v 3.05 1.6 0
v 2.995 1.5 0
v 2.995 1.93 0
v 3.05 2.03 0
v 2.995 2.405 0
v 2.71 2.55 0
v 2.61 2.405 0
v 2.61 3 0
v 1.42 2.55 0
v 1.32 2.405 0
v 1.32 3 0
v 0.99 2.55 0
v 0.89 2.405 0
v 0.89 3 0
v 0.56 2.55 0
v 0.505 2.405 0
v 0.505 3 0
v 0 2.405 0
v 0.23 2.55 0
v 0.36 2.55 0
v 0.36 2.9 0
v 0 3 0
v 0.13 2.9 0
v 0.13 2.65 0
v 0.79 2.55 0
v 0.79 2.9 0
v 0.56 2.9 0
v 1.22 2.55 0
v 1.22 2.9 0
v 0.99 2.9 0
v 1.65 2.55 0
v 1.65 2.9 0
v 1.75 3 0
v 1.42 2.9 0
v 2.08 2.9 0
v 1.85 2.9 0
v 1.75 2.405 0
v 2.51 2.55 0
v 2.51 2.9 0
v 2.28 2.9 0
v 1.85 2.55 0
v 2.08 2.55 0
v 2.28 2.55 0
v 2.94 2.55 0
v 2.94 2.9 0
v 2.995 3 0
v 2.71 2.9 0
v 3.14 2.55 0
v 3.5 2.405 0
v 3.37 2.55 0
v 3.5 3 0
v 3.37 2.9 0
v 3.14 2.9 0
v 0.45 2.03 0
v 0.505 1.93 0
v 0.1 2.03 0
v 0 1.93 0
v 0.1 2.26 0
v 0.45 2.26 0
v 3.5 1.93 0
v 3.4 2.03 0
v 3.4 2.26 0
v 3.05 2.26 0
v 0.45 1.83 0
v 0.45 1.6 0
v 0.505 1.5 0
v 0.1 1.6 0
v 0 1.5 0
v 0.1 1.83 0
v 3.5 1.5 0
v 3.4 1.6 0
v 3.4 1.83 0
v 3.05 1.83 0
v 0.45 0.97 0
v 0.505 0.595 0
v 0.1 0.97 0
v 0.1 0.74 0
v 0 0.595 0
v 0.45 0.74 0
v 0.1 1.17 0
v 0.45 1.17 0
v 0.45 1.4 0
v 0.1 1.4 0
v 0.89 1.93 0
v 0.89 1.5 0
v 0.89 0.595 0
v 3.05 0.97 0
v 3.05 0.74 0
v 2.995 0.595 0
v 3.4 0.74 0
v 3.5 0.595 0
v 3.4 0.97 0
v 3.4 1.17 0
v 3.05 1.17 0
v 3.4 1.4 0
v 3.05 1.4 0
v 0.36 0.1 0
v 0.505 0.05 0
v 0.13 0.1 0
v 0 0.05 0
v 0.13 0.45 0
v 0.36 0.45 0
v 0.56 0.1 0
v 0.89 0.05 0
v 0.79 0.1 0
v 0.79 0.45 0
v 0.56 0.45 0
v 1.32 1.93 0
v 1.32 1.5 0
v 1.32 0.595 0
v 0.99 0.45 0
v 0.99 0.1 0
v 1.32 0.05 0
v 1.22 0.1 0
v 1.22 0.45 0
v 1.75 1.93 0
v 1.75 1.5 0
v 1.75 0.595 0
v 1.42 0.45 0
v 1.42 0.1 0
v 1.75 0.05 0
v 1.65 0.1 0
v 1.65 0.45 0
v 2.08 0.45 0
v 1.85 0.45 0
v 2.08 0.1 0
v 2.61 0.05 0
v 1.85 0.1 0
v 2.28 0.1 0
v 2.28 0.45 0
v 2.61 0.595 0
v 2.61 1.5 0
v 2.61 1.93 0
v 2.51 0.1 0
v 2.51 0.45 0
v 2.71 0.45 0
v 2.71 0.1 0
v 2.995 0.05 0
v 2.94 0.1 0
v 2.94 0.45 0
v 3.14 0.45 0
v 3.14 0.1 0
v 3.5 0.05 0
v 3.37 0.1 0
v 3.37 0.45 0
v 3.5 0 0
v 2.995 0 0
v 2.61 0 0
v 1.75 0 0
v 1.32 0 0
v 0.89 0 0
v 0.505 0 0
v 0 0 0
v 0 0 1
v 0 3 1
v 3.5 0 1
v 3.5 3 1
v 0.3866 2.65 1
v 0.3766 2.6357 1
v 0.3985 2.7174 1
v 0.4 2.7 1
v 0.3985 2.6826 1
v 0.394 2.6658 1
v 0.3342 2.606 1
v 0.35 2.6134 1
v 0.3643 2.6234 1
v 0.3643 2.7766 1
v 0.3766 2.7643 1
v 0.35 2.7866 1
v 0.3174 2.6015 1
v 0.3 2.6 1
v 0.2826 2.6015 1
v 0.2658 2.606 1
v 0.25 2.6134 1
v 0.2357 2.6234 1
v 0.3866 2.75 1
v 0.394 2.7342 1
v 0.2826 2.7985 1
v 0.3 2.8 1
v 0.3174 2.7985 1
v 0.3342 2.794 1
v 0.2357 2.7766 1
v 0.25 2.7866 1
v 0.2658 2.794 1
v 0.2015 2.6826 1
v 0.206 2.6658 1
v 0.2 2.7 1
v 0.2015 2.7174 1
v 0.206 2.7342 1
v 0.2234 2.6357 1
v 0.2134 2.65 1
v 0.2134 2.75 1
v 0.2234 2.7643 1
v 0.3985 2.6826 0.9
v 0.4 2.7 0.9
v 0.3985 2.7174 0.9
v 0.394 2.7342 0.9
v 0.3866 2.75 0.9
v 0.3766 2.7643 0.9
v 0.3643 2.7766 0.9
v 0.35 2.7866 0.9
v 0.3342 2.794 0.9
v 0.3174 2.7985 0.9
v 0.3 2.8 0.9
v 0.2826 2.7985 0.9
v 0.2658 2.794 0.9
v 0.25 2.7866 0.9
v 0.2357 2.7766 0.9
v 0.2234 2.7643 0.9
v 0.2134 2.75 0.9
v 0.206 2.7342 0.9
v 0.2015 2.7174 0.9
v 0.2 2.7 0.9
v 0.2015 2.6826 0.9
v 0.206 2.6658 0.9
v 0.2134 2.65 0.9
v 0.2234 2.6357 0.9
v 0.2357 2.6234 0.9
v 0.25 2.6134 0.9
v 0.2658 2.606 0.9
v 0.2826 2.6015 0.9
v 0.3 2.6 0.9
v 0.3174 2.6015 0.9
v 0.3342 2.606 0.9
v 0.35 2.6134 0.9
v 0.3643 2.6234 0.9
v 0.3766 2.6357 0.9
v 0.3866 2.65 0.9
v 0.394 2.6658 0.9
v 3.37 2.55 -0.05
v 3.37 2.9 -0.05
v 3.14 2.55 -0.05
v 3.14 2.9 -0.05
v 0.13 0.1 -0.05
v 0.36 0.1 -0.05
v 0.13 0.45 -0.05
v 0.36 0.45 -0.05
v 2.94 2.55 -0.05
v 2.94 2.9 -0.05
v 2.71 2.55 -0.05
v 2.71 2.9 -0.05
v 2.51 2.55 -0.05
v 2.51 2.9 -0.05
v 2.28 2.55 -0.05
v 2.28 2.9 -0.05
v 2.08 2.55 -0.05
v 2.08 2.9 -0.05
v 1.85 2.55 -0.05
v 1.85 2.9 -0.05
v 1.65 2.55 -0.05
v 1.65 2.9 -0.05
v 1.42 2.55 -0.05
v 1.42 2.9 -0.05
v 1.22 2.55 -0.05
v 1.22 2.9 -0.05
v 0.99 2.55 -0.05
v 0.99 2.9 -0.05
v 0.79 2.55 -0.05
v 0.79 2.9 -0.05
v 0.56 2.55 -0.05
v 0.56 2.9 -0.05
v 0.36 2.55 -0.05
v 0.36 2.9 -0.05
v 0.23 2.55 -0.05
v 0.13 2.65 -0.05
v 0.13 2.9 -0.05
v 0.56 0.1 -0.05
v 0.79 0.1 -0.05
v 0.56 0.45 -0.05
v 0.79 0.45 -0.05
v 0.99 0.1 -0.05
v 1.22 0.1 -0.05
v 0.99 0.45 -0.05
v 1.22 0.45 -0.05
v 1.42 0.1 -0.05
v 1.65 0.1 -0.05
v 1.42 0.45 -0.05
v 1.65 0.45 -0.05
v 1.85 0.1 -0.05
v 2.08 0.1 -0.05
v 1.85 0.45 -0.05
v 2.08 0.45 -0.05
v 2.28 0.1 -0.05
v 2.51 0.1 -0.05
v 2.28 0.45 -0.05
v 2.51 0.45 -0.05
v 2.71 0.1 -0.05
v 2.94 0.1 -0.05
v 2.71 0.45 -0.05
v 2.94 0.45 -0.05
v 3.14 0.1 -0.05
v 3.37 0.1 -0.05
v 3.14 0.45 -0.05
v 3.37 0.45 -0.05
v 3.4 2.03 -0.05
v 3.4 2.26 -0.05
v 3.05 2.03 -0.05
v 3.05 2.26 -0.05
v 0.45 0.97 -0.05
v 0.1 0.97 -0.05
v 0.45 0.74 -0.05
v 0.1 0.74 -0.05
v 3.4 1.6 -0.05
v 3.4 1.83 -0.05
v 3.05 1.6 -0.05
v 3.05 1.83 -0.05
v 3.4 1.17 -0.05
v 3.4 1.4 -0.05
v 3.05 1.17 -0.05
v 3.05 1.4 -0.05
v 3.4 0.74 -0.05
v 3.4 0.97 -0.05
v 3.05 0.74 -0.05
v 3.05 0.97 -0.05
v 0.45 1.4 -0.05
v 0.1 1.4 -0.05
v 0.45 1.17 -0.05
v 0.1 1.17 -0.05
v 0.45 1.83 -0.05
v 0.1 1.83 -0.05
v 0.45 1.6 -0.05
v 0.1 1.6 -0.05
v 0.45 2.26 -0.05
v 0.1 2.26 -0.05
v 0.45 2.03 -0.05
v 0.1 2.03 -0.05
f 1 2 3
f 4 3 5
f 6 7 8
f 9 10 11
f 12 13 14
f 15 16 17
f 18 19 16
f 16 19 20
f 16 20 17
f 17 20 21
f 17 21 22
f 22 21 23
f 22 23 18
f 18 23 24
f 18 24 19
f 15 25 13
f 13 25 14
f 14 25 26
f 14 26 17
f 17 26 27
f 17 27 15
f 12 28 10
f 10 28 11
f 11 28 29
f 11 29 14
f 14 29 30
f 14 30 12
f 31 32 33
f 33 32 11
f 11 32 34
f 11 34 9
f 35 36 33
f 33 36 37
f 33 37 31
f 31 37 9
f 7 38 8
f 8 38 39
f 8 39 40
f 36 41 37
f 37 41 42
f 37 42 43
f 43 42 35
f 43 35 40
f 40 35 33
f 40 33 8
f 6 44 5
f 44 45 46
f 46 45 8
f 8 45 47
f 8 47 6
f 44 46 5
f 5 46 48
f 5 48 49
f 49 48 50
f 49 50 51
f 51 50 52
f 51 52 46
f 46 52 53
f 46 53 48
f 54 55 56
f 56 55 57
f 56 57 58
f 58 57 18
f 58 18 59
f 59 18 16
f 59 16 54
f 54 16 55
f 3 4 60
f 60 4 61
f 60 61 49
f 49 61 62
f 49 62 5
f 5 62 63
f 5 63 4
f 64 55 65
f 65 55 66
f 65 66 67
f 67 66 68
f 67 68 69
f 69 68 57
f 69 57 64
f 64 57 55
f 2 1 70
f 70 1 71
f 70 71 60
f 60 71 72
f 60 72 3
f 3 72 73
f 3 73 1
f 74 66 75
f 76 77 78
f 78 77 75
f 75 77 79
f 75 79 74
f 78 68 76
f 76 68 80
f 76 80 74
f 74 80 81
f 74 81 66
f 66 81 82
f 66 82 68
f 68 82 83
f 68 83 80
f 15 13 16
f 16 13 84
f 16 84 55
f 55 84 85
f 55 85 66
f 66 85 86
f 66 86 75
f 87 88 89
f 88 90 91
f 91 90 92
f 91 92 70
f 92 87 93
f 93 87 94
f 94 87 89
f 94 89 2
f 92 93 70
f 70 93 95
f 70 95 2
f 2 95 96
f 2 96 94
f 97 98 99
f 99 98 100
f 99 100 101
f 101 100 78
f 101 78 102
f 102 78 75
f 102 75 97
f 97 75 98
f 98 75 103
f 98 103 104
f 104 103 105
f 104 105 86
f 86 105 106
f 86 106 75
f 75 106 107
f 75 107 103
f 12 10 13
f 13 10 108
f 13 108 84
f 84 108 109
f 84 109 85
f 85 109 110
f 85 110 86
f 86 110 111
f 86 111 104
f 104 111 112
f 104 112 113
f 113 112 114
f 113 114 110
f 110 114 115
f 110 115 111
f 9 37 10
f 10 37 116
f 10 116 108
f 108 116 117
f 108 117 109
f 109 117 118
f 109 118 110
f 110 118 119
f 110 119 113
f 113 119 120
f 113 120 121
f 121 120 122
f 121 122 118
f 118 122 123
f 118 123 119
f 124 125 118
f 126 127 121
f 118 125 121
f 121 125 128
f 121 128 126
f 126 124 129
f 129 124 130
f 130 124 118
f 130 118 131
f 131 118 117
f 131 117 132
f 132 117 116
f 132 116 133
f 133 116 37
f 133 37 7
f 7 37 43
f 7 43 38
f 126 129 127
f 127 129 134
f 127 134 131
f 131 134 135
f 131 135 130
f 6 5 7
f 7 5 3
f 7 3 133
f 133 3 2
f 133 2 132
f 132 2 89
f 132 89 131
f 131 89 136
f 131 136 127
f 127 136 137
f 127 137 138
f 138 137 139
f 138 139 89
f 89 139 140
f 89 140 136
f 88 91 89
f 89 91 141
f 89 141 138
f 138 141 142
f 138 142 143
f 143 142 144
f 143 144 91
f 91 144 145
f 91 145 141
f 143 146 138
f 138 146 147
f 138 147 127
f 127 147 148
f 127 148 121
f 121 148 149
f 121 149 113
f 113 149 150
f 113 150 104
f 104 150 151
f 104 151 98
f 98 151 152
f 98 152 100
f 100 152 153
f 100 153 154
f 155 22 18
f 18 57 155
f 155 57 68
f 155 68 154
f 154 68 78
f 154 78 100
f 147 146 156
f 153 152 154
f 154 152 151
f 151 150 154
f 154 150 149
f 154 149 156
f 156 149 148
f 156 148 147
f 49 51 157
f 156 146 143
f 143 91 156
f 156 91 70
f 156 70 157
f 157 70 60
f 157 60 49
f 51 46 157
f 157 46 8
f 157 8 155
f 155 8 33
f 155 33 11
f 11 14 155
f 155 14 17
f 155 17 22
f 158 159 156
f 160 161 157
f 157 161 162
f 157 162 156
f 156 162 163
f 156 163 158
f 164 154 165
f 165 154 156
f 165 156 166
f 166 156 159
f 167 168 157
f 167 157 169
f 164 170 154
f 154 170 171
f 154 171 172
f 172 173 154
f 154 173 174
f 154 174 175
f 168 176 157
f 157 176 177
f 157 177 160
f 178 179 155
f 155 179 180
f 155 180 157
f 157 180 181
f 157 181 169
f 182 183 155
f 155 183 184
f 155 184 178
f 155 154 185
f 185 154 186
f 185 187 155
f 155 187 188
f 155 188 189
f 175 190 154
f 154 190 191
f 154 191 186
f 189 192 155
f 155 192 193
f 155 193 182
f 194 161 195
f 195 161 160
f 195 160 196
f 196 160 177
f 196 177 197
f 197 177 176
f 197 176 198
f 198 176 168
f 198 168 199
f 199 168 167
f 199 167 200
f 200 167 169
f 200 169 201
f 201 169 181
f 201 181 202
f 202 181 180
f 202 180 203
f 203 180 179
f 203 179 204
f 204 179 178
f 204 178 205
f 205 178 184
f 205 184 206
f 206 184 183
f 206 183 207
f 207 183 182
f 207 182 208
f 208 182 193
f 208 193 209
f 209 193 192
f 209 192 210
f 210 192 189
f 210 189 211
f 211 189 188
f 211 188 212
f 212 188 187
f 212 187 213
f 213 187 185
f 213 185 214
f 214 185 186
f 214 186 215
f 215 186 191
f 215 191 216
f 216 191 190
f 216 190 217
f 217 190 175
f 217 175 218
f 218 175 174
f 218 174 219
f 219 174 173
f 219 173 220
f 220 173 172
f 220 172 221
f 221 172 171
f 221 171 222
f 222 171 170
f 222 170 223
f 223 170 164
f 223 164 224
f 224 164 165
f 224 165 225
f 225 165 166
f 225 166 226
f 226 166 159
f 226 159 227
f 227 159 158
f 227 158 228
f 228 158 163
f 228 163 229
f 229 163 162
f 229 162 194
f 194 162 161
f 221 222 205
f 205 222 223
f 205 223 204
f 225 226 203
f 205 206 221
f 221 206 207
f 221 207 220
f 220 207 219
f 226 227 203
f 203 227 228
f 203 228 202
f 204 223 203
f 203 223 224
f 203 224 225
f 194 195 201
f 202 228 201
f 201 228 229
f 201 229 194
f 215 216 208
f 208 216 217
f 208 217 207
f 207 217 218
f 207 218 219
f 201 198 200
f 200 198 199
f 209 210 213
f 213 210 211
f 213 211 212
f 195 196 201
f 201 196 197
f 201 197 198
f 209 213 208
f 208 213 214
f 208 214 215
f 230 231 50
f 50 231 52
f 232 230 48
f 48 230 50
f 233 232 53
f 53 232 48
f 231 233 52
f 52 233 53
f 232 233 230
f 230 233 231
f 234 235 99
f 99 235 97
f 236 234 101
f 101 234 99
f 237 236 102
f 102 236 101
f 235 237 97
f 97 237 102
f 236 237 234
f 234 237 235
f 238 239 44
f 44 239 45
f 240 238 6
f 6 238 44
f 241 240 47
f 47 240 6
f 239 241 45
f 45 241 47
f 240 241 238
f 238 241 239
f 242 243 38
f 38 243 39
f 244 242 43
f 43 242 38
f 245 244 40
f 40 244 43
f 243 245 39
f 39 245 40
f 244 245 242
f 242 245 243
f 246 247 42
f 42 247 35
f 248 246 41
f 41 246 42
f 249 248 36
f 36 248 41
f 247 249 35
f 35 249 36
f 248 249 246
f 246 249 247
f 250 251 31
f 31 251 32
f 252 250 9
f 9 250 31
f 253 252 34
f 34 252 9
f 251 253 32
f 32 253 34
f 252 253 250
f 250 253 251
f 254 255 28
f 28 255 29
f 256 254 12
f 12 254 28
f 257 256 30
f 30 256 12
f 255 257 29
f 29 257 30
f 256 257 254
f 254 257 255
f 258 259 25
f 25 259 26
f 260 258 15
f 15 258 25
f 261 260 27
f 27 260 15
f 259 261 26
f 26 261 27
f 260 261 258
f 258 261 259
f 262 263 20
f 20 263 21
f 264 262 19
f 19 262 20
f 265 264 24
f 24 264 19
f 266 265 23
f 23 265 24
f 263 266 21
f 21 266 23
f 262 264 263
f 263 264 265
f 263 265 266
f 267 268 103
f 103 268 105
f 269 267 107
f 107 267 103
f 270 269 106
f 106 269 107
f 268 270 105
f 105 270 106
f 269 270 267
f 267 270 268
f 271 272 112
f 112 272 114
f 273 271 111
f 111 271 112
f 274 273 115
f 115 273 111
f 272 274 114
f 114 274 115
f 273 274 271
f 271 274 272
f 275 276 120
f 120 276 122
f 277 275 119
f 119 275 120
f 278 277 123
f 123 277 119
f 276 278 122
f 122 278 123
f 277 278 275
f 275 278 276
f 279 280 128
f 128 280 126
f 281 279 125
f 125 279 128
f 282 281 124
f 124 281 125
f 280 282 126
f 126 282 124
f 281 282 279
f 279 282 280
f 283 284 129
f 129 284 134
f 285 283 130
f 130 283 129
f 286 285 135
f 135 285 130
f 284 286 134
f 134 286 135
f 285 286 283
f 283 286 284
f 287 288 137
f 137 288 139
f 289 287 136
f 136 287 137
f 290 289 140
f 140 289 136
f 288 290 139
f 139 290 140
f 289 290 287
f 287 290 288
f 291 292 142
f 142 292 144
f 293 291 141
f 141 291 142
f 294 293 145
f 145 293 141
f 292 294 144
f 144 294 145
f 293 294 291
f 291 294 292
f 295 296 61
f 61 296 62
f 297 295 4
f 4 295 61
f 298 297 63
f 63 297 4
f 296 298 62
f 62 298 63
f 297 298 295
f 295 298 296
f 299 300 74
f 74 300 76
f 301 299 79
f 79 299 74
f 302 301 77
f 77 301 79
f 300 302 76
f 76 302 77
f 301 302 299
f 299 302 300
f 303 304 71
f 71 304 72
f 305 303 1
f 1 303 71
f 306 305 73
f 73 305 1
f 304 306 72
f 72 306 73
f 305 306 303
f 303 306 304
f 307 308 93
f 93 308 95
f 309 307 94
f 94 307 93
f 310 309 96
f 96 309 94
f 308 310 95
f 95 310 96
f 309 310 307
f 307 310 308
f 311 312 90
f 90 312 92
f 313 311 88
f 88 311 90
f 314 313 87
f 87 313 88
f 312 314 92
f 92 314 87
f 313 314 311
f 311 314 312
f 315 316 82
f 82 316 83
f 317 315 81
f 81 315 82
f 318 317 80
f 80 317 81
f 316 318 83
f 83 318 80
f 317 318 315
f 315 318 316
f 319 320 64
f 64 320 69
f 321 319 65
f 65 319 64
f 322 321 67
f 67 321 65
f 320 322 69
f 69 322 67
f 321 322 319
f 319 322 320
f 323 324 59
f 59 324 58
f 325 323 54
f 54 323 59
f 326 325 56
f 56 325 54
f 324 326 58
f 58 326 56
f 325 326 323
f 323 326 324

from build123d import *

# Parameters (mm, degrees)
SKETCH1_W           = 3.5
SKETCH1_H           = 3
BOSS_EXTRUDE1_DEPTH = 1
SKETCH2_R           = 0.1
CUT_EXTRUDE1_DEPTH  = 0.1
SKETCH3_W           = 0.23
SKETCH3_H           = 0.35
SKETCH3_W_2         = 0.35
SKETCH3_H_2         = 0.23
BOSS_EXTRUDE2_DEPTH = 0.05


with BuildPart() as part:
    # Sketch1 → Boss-Extrude1 (new body)
    with BuildSketch(Plane.XY):
        with Locations((1.75, 1.5)):
            Rectangle(SKETCH1_W, SKETCH1_H)
    extrude(amount=BOSS_EXTRUDE1_DEPTH)

    # Sketch2 → Cut-Extrude1 (cut)
    with BuildSketch(Plane.XY.offset(1)):
        with Locations((0.3, 2.7)):
            Circle(SKETCH2_R)
    extrude(amount=-CUT_EXTRUDE1_DEPTH, mode=Mode.SUBTRACT)

    # Sketch3 → Boss-Extrude2 (add)
    with BuildSketch(Plane(origin=(0, 0, 0), x_dir=(-1, 0, 0), z_dir=(0, 0, -1))):
        with Locations((-3.255, 2.725)):
            Rectangle(SKETCH3_W, SKETCH3_H)
        with Locations((-2.825, 2.725)):
            Rectangle(SKETCH3_W, SKETCH3_H)
        with Locations((-2.395, 2.725)):
            Rectangle(SKETCH3_W, SKETCH3_H)
        with Locations((-1.965, 2.725)):
            Rectangle(SKETCH3_W, SKETCH3_H)
        with Locations((-1.535, 2.725)):
            Rectangle(SKETCH3_W, SKETCH3_H)
        with Locations((-1.105, 2.725)):
            Rectangle(SKETCH3_W, SKETCH3_H)
        with Locations((-0.675, 2.725)):
            Rectangle(SKETCH3_W, SKETCH3_H)
        Polygon((-0.36, 2.9), (-0.13, 2.9), (-0.13, 2.65), (-0.23, 2.55), (-0.36, 2.55), align=None)
        with Locations((-0.245, 0.275)):
            Rectangle(SKETCH3_W, SKETCH3_H)
        with Locations((-0.675, 0.275)):
            Rectangle(SKETCH3_W, SKETCH3_H)
        with Locations((-1.105, 0.275)):
            Rectangle(SKETCH3_W, SKETCH3_H)
        with Locations((-1.535, 0.275)):
            Rectangle(SKETCH3_W, SKETCH3_H)
        with Locations((-1.965, 0.275)):
            Rectangle(SKETCH3_W, SKETCH3_H)
        with Locations((-2.395, 0.275)):
            Rectangle(SKETCH3_W, SKETCH3_H)
        with Locations((-2.825, 0.275)):
            Rectangle(SKETCH3_W, SKETCH3_H)
        with Locations((-3.255, 0.275)):
            Rectangle(SKETCH3_W, SKETCH3_H)
        with Locations((-3.225, 2.145)):
            Rectangle(SKETCH3_W_2, SKETCH3_H_2)
        with Locations((-3.225, 1.715)):
            Rectangle(SKETCH3_W_2, SKETCH3_H_2)
        with Locations((-3.225, 1.285)):
            Rectangle(SKETCH3_W_2, SKETCH3_H_2)
        with Locations((-3.225, 0.855)):
            Rectangle(SKETCH3_W_2, SKETCH3_H_2)
        with Locations((-0.275, 0.855)):
            Rectangle(SKETCH3_W_2, SKETCH3_H_2)
        with Locations((-0.275, 1.285)):
            Rectangle(SKETCH3_W_2, SKETCH3_H_2)
        with Locations((-0.275, 1.715)):
            Rectangle(SKETCH3_W_2, SKETCH3_H_2)
        with Locations((-0.275, 2.145)):
            Rectangle(SKETCH3_W_2, SKETCH3_H_2)
    extrude(amount=BOSS_EXTRUDE2_DEPTH)


solid = part.part
